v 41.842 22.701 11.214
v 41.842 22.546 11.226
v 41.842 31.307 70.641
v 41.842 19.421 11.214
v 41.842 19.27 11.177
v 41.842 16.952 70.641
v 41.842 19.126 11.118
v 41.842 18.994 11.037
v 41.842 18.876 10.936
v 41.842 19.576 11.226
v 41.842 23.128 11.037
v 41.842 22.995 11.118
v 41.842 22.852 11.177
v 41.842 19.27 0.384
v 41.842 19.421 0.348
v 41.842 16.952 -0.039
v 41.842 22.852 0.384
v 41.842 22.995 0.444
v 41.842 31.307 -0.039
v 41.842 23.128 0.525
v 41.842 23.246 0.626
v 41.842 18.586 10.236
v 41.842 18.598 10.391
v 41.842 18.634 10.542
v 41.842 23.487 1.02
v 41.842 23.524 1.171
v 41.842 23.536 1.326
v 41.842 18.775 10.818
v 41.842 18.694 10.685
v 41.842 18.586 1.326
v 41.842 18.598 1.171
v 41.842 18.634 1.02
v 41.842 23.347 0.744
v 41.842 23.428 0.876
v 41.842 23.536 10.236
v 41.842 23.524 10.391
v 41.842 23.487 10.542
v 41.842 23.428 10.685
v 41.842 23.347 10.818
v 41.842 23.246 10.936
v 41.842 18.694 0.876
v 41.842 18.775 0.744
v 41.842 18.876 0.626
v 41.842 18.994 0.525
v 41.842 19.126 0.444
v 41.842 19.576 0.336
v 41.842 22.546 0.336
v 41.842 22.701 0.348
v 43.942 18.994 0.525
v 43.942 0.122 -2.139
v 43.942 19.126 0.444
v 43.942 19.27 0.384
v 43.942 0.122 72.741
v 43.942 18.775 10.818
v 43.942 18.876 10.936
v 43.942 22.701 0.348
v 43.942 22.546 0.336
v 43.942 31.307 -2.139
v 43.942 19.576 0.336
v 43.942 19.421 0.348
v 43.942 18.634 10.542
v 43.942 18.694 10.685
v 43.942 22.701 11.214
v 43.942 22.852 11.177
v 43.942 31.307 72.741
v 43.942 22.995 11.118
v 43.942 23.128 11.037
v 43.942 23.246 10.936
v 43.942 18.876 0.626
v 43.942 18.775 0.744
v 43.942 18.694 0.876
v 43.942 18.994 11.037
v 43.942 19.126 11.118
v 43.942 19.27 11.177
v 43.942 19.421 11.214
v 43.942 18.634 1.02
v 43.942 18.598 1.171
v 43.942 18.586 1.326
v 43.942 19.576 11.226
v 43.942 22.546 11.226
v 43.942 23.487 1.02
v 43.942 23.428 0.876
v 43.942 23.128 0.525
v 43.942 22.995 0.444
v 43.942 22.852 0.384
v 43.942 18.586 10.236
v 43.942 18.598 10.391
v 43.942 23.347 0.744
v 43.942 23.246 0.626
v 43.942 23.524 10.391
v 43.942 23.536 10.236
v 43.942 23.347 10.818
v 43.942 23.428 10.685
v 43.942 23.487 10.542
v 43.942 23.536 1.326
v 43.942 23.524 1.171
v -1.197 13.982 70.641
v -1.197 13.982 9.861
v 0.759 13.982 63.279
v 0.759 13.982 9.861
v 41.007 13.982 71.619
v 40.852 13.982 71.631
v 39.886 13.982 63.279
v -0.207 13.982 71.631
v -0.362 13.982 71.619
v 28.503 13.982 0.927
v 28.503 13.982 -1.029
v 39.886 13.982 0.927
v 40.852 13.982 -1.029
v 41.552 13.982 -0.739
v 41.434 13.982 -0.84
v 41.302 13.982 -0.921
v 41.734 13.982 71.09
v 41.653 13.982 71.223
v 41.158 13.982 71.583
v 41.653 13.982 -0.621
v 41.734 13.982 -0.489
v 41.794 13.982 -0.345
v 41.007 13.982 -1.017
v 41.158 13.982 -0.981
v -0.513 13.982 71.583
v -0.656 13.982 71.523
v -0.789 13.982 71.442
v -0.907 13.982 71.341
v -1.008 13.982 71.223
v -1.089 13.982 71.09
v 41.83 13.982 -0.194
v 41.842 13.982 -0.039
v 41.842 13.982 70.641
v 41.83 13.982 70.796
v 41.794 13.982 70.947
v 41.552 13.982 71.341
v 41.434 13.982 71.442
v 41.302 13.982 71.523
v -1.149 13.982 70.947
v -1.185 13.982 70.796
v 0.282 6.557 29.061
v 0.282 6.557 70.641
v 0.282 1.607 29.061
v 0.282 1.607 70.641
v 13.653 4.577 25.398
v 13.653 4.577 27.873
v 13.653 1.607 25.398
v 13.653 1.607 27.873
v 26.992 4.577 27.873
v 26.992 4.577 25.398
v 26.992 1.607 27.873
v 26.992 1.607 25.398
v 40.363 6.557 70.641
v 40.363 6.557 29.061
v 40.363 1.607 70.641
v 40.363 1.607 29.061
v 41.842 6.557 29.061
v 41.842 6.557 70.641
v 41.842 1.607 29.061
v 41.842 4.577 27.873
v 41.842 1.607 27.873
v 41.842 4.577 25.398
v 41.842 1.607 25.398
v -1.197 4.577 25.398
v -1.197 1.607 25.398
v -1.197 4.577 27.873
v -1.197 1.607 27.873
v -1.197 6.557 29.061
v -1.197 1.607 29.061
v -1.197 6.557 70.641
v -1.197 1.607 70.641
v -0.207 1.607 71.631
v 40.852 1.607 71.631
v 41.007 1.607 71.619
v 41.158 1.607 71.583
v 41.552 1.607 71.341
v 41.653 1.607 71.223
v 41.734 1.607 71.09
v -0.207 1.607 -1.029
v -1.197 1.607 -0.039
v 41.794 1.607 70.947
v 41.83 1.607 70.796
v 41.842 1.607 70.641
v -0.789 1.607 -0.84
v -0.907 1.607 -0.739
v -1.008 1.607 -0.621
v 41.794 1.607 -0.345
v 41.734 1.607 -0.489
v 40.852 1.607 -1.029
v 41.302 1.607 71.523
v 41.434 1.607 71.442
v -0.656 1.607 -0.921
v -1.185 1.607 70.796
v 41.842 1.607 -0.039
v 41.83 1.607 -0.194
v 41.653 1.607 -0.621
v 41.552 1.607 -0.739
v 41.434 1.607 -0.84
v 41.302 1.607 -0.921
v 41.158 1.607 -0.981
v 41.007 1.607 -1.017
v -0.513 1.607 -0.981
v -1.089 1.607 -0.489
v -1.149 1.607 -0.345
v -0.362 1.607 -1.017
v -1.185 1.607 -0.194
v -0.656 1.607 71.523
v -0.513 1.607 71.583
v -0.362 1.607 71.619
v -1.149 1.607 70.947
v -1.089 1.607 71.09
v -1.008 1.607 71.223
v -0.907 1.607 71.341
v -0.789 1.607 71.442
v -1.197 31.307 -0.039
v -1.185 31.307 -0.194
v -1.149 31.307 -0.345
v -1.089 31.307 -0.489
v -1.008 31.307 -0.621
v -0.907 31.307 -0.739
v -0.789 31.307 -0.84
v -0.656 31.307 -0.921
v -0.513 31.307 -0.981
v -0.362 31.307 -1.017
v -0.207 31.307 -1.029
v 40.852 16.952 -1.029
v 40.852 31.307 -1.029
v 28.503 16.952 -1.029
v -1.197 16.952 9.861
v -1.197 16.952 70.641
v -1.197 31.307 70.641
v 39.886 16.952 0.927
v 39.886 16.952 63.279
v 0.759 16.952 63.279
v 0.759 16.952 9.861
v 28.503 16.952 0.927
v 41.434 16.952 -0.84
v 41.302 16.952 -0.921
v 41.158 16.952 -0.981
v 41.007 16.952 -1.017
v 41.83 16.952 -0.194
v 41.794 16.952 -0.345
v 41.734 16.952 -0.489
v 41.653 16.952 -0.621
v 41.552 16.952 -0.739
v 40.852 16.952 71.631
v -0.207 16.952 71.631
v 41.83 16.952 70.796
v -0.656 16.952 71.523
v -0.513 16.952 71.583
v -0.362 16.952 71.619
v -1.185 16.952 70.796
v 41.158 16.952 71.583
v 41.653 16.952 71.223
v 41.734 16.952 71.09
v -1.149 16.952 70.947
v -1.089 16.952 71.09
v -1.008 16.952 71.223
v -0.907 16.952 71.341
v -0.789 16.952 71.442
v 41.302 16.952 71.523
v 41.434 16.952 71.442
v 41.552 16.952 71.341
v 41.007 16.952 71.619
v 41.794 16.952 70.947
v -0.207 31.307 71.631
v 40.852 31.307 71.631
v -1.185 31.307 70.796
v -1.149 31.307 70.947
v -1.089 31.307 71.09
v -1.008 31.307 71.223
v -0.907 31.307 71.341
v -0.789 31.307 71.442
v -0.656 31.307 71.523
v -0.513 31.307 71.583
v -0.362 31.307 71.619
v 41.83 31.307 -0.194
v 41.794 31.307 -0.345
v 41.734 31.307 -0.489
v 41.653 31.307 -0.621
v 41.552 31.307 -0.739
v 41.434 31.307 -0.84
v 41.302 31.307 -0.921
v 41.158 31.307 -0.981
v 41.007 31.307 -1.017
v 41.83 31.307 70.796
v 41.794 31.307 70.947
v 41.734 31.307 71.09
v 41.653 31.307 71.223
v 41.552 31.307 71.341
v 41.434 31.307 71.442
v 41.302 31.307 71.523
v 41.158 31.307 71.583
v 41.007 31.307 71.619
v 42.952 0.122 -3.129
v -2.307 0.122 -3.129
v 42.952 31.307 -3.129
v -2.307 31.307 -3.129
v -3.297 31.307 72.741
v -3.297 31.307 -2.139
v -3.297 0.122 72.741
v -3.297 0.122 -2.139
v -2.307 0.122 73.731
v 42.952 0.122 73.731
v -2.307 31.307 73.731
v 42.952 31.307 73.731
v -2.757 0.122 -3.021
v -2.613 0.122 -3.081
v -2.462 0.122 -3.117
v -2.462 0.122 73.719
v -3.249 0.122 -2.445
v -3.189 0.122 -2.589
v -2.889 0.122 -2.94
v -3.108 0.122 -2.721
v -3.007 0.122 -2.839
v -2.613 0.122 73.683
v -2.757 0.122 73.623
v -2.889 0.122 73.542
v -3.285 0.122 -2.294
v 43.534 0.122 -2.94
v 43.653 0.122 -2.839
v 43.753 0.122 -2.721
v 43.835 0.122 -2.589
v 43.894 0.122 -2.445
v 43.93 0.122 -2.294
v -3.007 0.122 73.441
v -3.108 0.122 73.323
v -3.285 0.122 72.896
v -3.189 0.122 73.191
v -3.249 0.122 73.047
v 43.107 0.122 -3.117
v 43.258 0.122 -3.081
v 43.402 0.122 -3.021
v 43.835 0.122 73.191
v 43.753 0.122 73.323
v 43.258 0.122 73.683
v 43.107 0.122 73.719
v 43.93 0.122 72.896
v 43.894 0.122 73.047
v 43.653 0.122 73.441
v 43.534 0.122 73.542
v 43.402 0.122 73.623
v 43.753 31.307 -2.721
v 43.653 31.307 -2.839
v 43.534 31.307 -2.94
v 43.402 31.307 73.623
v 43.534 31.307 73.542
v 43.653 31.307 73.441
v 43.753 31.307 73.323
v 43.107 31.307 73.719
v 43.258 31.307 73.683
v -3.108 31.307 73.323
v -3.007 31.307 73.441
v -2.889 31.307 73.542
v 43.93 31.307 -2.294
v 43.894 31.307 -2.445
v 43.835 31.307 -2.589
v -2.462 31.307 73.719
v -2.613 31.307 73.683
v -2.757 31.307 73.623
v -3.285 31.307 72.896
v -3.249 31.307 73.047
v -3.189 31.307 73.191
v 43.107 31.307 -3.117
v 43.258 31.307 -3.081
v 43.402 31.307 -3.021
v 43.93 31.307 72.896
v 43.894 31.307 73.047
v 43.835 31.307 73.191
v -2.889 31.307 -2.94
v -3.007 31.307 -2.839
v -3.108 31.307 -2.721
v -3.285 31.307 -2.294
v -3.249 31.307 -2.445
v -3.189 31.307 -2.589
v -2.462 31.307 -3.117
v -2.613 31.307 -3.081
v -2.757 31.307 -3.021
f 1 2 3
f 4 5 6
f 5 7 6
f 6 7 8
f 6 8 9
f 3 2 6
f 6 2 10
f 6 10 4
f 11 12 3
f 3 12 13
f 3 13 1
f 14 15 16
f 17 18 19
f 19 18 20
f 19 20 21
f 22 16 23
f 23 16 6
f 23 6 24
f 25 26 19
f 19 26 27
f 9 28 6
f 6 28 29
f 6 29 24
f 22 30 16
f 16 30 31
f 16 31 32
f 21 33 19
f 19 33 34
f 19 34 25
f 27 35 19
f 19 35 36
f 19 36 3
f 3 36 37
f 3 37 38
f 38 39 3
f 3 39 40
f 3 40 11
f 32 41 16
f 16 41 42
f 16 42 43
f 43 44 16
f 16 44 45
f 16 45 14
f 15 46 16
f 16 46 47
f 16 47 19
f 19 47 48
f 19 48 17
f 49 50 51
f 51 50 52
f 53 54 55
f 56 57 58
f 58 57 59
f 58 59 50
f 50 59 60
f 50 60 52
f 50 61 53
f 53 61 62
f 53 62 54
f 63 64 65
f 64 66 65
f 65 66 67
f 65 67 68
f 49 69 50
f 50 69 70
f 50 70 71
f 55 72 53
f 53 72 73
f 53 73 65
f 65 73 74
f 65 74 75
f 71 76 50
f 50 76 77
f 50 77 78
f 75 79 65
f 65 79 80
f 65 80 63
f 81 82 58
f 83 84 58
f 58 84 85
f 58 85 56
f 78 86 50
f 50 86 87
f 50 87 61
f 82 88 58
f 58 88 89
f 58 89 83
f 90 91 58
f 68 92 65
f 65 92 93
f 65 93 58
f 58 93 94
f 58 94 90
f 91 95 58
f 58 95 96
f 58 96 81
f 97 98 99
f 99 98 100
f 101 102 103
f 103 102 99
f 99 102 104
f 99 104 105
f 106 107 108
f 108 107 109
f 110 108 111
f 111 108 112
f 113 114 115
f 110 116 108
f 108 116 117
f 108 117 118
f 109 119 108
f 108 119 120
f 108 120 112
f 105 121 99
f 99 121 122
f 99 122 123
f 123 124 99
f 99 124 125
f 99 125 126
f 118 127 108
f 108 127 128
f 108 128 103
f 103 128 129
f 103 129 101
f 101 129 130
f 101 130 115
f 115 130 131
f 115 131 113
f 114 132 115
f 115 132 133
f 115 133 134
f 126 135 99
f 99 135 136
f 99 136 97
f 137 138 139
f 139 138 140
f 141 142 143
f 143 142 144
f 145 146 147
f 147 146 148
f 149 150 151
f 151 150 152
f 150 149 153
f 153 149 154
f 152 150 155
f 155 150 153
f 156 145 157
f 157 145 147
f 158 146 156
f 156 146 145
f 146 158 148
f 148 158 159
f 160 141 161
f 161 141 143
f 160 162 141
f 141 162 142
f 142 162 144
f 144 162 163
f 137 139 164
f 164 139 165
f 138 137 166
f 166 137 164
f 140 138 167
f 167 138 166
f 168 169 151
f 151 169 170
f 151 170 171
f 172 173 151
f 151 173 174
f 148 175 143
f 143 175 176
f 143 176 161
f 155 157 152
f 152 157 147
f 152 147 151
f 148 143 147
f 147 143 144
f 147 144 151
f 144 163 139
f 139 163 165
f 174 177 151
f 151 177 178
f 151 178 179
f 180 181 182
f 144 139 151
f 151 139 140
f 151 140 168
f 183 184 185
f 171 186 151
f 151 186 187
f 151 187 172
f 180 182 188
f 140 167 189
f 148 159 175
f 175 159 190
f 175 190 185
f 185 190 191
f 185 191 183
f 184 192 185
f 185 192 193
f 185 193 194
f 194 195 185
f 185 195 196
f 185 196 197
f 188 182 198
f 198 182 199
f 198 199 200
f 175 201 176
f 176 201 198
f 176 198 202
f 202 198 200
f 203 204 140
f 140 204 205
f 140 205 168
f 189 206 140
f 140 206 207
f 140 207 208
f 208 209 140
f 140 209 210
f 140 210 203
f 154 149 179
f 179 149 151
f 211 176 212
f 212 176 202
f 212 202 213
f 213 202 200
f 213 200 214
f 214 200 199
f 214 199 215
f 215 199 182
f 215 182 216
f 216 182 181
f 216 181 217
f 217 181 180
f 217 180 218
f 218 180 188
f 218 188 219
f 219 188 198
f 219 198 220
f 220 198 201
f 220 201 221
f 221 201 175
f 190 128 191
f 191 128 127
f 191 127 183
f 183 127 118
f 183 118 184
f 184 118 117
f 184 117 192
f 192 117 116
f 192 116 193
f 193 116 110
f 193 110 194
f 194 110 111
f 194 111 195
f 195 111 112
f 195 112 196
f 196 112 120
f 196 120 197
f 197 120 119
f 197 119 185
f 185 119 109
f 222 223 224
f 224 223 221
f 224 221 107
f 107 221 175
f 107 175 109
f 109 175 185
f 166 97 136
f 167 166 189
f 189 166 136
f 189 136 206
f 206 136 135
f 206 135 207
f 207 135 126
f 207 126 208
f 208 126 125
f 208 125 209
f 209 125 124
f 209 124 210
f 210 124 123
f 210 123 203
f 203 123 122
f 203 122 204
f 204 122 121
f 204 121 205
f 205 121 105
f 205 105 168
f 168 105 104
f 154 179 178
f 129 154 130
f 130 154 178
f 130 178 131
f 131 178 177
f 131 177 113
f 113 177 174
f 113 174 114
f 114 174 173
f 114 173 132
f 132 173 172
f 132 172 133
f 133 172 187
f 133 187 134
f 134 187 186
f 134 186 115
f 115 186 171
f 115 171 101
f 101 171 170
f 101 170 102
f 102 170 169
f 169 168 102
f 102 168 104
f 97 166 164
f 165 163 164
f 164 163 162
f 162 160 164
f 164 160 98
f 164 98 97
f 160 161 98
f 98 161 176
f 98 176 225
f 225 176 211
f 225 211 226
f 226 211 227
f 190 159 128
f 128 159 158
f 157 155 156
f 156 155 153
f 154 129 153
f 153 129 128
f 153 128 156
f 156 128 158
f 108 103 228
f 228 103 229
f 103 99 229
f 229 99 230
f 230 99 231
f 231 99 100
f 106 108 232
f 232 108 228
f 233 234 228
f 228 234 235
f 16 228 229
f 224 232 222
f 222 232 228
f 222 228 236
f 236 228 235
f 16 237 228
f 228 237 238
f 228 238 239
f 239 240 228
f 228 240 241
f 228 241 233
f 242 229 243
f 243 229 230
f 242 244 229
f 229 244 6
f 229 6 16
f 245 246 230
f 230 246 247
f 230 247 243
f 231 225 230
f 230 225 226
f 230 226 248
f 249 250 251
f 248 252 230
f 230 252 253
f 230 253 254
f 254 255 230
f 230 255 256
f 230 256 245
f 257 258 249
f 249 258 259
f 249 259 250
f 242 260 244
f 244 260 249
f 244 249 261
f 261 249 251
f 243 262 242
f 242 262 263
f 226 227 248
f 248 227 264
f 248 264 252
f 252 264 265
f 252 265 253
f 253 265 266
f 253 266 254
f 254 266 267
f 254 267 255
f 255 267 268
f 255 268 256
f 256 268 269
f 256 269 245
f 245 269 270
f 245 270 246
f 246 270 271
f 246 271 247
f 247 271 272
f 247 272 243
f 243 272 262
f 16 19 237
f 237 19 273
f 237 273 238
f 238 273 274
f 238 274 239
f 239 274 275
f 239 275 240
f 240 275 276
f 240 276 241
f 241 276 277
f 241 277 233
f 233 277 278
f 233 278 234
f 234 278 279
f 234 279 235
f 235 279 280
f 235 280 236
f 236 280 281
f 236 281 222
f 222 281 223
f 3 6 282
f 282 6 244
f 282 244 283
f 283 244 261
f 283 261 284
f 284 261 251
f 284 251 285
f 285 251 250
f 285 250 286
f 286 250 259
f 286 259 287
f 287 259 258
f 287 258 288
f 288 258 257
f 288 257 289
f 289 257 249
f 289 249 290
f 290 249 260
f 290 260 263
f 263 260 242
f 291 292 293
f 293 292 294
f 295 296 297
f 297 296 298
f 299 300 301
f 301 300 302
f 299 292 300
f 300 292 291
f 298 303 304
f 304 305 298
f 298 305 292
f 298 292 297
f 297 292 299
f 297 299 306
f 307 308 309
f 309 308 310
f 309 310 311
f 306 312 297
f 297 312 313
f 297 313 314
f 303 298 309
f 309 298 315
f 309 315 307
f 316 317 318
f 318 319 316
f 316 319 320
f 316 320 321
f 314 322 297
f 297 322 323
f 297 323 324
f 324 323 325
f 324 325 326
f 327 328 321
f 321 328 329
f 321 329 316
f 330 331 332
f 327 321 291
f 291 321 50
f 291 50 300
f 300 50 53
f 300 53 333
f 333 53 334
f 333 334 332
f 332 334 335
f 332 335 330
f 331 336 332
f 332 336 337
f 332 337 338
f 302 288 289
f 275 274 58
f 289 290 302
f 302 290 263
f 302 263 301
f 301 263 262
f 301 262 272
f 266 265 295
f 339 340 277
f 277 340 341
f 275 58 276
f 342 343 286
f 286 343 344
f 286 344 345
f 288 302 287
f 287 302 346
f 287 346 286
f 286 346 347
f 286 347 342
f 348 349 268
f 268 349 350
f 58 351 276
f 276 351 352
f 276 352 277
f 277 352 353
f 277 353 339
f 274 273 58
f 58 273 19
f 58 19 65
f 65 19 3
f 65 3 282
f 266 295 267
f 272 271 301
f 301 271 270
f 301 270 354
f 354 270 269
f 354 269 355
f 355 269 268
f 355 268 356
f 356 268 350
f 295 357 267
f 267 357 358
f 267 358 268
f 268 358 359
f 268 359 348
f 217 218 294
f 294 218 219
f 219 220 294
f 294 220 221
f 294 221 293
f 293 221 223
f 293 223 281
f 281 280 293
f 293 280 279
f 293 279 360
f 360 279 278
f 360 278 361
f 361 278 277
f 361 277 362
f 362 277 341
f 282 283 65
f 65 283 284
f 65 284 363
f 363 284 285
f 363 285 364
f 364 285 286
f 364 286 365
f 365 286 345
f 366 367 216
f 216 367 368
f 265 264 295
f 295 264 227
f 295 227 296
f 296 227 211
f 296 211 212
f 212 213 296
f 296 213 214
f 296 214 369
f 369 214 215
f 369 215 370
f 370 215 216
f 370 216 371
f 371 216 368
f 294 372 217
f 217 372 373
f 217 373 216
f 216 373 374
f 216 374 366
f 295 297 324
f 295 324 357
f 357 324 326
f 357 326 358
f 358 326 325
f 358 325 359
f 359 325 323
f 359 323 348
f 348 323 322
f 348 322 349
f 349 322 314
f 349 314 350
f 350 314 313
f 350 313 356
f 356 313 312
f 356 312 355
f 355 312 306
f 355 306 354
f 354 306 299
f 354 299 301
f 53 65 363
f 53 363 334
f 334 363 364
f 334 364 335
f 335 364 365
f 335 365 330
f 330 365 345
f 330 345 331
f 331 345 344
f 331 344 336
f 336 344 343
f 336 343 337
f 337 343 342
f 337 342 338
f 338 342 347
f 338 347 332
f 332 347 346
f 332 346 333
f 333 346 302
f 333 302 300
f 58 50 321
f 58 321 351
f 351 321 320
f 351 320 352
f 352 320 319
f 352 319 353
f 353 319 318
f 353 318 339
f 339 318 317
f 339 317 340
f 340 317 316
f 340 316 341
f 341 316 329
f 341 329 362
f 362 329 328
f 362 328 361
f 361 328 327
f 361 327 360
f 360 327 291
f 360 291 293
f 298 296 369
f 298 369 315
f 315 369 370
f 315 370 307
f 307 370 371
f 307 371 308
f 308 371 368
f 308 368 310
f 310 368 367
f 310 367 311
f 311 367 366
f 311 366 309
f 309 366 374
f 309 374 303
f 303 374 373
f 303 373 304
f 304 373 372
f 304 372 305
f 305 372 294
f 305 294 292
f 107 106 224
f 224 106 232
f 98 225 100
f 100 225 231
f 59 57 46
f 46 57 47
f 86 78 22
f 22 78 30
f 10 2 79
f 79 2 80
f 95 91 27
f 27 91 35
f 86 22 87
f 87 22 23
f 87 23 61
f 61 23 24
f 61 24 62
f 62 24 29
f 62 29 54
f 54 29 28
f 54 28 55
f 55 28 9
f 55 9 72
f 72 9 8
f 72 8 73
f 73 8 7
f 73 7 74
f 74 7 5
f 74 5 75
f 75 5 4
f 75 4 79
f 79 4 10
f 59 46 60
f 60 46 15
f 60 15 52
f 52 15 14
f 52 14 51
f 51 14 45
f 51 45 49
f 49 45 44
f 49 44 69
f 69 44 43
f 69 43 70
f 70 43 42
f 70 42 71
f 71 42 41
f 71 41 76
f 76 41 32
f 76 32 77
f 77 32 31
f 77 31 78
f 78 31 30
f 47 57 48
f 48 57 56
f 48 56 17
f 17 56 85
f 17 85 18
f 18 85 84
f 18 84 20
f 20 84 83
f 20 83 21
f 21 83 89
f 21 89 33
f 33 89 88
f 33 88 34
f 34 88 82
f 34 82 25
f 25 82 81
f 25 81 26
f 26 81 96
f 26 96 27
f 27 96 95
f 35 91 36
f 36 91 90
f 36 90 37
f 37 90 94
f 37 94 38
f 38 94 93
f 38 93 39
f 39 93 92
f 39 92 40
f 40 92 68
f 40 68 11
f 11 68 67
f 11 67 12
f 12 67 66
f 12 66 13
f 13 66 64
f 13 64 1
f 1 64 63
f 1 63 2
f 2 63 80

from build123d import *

# Parameters (mm, degrees)
PCB_DIMENSIONS_W    = 47.716732244
PCB_DIMENSIONS_H    = 77.636732244
BOSS_EXTRUDE3_DEPTH = 1.5
SKETCH5_W           = 47.716732244
SKETCH5_H           = 77.636732244
SKETCH5_W_2         = 43.474091557
SKETCH5_H_2         = 73.394091557
BOSS_EXTRUDE5_DEPTH = 30
FILLET1_R           = 1
SKETCH9_W           = 1.93805105
SKETCH9_H           = 42
SKETCH9_W_2         = 1.938051049
BOSS_EXTRUDE6_DEPTH = 5
SKETCH14_W          = 15
SKETCH14_H          = 2.5
BOSS_EXTRUDE7_DEPTH = 3
SKETCH15_W          = 75.636732244
SKETCH15_H          = 3
BOSS_EXTRUDE8_DEPTH = 46
SKETCH17_W          = 39.522771214
SKETCH17_H          = 62.982276128
CUT_EXTRUDE1_DEPTH  = 3
CUT_EXTRUDE2_DEPTH  = 3
SKETCH19_W          = 11
SKETCH19_H          = 5
CUT_EXTRUDE3_DEPTH  = 10
FILLET2_R           = 1
SCALE1_SCALE        = 0.99


with BuildPart() as part:
    # PCB Dimensions → Boss-Extrude3 (new body)
    with BuildSketch(Plane(origin=(0, 0, 0), x_dir=(1, 0, 0), z_dir=(0, 1, 0))):
        with Locations((20.322832216, -35.282832216)):
            Rectangle(PCB_DIMENSIONS_W, PCB_DIMENSIONS_H)
    extrude(amount=BOSS_EXTRUDE3_DEPTH)

    # Sketch5 → Boss-Extrude5 (add)
    with BuildSketch(Plane(origin=(0, 1.5, 0), x_dir=(1, 0, 0), z_dir=(0, 1, 0))):
        with Locations((20.322832216, -35.282832216)):
            Rectangle(SKETCH5_W, SKETCH5_H)
        with Locations((20.322832217, -35.282832217)):
            Rectangle(SKETCH5_W_2, SKETCH5_H_2, mode=Mode.SUBTRACT)
    extrude(amount=BOSS_EXTRUDE5_DEPTH)

    # Fillet1
    fillet1_edges = [part.edges().sort_by_distance(p)[0] for p in [
        (42.059877995, 16.5, -1.414213562),
        (-1.414213562, 16.5, -1.414213562),
        (-1.414213562, 16.5, 71.979877995),
        (42.059877995, 16.5, 71.979877995),
        (44.181198338, 15.75, 74.101198338),
        (-3.535533906, 15.75, 74.101198338),
        (-3.535533906, 15.75, -3.535533906),
        (44.181198338, 15.75, -3.535533906),
    ]]
    fillet(fillet1_edges, radius=FILLET1_R)

    # Sketch9 → Boss-Extrude6 (add)
    with BuildSketch(Plane(origin=(0, 1.5, 0), x_dir=(1, 0, 0), z_dir=(0, 1, 0))):
        with Locations((-0.88911969, -49.979881394)):
            Rectangle(SKETCH9_W, SKETCH9_H)
        with Locations((41.534784122, -49.979881394)):
            Rectangle(SKETCH9_W_2, SKETCH9_H)
    extrude(amount=BOSS_EXTRUDE6_DEPTH)

    # Sketch14 → Boss-Extrude7 (add)
    with BuildSketch(Plane(origin=(0, 1.5, 0), x_dir=(1, 0, 0), z_dir=(0, 1, 0))):
        with Locations((6.085786438, -26.529881394)):
            Rectangle(SKETCH14_W, SKETCH14_H)
        with Locations((34.559877995, -26.529881394)):
            Rectangle(SKETCH14_W, SKETCH14_H)
    extrude(amount=BOSS_EXTRUDE7_DEPTH)

    # Sketch15 → Boss-Extrude8 (add)
    with BuildSketch(Plane(origin=(44.181198338, 0, 0), x_dir=(0, 0, -1), z_dir=(1, 0, 0))):
        with Locations((-35.282832216, 15.5)):
            Rectangle(SKETCH15_W, SKETCH15_H)
    extrude(amount=-BOSS_EXTRUDE8_DEPTH)

    # Sketch17 → Cut-Extrude1 (cut)
    with BuildSketch(Plane(origin=(0, 17, 0), x_dir=(1, 0, 0), z_dir=(0, 1, 0))):
        with Locations((20.322832216, -32.052584673)):
            Rectangle(SKETCH17_W, SKETCH17_H)
    extrude(amount=-CUT_EXTRUDE1_DEPTH, mode=Mode.SUBTRACT)

    # Sketch18 → Cut-Extrude2 (cut)
    with BuildSketch(Plane(origin=(0, 17, 0), x_dir=(1, 0, 0), z_dir=(0, 1, 0))):
        with BuildLine():
            Line((-1.414213562, -9.585786438), (28.585786438, -9.585786438))
            Line((28.585786438, -9.585786438), (28.585786438, 1.414213562))
            Line((28.585786438, 1.414213562), (-0.414213562, 1.414213562))
            ThreePointArc((-0.414213562, 1.414213562), (-1.121320344, 1.121320344), (-1.414213562, 0.414213562))
            Line((-1.414213562, 0.414213562), (-1.414213562, -9.585786438))
        make_face()
    extrude(amount=-CUT_EXTRUDE2_DEPTH, mode=Mode.SUBTRACT)

    # Sketch19 → Cut-Extrude3 (cut)
    with BuildSketch(Plane(origin=(44.181198338, 0, 0), x_dir=(0, 0, -1), z_dir=(1, 0, 0))):
        with Locations((-5.464466094, 21.15)):
            Rectangle(SKETCH19_W, SKETCH19_H)
    extrude(amount=-CUT_EXTRUDE3_DEPTH, mode=Mode.SUBTRACT)

    # Fillet2
    fillet2_edges = [part.edges().sort_by_distance(p)[0] for p in [
        (43.120538167, 23.65, -0.035533906),
        (43.120538167, 18.65, -0.035533906),
        (43.120538167, 18.65, 10.964466094),
        (43.120538167, 23.65, 10.964466094),
    ]]
    fillet(fillet2_edges, radius=FILLET2_R)


with BuildPart() as part_1:
    # Scale1: scaled about (20.30907108, 12.22563111, 37.095530551)
    add(part.part.scale(SCALE1_SCALE).moved(Location((0.203090711, 0.122256311, 0.370955306))))


solid = part_1.part
